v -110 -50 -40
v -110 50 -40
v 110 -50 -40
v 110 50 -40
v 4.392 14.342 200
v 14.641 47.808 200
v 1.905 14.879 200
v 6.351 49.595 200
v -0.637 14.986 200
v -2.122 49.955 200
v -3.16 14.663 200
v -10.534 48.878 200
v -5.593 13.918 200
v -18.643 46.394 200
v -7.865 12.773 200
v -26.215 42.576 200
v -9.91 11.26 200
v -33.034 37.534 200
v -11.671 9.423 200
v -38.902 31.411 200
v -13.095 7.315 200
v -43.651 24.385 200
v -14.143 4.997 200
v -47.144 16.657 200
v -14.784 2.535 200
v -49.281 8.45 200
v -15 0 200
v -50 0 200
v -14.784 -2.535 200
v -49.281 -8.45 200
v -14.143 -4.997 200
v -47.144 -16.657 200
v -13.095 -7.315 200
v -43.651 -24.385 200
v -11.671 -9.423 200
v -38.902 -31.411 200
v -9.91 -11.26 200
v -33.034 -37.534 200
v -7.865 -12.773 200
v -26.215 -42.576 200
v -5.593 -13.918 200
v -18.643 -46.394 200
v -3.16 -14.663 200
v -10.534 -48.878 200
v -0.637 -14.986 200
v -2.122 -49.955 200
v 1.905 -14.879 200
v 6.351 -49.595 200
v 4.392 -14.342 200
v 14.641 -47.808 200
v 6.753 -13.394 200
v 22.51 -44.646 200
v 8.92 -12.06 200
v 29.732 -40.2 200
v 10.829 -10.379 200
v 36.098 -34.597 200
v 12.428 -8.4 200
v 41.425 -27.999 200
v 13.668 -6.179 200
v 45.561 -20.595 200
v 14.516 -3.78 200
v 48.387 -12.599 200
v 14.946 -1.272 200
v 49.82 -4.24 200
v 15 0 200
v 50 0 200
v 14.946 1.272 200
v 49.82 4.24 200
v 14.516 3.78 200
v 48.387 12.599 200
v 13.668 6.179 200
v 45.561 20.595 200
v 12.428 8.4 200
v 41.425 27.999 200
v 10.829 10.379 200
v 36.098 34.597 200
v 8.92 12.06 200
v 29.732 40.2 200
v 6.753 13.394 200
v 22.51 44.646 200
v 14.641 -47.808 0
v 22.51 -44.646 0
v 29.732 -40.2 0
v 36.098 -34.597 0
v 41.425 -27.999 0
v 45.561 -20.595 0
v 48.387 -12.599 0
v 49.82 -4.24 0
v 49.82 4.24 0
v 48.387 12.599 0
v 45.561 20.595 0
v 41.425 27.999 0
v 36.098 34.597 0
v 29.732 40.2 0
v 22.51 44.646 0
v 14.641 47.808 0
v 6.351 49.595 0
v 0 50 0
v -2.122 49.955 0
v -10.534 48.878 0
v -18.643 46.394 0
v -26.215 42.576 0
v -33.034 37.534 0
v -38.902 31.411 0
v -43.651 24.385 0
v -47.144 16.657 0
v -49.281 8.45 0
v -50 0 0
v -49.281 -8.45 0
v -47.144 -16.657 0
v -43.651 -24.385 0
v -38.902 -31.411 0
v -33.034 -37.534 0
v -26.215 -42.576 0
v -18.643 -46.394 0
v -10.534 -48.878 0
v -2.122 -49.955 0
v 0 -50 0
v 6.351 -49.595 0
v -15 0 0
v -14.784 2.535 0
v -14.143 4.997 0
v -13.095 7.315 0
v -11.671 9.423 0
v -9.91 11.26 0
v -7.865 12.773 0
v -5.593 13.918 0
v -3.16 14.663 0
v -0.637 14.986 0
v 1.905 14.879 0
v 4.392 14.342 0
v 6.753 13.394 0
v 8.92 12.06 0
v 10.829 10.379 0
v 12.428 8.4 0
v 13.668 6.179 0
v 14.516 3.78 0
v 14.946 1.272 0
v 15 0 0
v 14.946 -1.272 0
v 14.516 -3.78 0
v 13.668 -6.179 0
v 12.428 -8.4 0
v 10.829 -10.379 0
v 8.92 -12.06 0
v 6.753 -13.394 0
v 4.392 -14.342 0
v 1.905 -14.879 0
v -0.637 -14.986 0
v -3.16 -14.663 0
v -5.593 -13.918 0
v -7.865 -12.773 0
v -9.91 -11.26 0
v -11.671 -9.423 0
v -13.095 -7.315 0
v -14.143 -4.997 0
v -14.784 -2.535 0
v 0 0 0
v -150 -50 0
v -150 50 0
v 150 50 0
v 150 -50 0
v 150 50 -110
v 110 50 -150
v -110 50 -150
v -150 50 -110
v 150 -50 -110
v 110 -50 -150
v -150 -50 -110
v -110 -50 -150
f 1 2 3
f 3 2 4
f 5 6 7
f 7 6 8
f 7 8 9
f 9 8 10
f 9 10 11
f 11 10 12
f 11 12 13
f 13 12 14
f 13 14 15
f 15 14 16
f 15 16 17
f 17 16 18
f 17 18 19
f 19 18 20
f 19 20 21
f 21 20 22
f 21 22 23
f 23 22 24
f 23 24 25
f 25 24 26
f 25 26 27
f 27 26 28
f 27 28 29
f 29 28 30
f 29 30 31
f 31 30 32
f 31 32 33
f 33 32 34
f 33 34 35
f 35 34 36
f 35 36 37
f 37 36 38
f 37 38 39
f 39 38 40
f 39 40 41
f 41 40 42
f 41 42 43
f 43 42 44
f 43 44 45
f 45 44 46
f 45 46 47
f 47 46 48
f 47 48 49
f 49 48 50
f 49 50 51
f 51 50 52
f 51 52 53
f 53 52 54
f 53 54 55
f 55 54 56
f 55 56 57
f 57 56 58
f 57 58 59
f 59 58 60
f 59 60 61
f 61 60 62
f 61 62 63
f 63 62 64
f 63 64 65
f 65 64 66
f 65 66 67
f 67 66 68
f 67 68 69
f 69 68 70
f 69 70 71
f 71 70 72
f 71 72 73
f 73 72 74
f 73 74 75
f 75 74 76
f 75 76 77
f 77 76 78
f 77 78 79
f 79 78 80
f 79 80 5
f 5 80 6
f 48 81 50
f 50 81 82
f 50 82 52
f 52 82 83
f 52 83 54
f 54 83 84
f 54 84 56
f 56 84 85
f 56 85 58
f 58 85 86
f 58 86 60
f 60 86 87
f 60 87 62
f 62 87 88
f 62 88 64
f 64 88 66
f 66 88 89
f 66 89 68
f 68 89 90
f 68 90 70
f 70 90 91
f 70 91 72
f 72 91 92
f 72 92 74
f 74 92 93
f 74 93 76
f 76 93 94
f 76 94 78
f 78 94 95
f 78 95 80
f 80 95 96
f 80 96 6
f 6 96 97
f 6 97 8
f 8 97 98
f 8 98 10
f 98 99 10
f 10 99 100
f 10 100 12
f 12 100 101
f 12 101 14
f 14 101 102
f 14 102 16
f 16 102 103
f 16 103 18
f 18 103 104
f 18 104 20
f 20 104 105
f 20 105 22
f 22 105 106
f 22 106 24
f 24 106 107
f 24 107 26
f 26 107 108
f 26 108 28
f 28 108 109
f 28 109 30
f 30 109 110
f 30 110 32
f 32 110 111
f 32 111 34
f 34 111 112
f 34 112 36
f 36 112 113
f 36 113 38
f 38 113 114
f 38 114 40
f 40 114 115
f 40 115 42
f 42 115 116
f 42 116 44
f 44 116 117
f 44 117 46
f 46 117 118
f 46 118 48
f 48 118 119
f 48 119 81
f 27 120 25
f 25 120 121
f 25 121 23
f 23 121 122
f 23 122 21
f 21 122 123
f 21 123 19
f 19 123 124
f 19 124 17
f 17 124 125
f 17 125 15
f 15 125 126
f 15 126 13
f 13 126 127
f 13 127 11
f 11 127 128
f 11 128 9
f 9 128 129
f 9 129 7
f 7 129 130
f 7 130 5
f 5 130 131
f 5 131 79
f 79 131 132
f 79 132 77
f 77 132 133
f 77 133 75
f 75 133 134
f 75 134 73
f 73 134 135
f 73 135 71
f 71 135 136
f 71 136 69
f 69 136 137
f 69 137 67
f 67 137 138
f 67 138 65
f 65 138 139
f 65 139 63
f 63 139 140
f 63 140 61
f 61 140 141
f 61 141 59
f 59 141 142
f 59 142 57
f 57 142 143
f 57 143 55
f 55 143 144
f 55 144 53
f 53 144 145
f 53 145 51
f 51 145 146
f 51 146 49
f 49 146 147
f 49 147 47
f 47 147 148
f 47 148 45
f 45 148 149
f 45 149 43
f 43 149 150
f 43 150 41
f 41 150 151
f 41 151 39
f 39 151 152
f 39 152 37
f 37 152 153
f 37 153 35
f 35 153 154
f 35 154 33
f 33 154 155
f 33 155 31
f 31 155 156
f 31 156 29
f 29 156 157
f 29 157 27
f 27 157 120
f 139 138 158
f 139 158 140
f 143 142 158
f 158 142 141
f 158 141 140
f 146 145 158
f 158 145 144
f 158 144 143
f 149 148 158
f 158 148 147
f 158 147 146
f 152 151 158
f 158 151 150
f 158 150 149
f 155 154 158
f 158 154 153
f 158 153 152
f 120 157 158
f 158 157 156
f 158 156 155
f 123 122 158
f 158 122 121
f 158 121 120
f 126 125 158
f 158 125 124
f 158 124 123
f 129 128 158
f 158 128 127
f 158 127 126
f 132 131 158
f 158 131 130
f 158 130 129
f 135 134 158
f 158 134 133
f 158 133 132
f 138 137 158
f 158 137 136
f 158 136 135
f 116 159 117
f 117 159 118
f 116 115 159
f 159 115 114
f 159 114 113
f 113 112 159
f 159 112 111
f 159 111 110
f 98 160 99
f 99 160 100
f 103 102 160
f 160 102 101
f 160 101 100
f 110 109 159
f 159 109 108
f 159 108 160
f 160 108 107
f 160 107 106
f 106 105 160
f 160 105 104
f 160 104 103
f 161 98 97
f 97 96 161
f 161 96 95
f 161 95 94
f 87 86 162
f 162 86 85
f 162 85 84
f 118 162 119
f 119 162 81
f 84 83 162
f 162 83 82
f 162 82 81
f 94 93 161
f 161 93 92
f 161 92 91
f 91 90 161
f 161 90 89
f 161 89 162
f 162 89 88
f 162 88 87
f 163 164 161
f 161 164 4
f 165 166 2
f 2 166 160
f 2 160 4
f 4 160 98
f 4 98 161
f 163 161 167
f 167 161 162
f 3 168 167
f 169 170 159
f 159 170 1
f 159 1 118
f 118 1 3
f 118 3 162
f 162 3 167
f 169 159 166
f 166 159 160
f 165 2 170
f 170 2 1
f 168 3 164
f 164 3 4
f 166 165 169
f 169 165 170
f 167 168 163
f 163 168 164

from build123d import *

# Parameters (mm, degrees)
SKETCH2_R           = 50
SKETCH2_R_2         = 15
BOSS_EXTRUDE1_DEPTH = 200
BOSS_EXTRUDE2_DEPTH = 40
SKETCH4_W           = 40
SKETCH4_H           = 100
BOSS_EXTRUDE3_DEPTH = 120
CHAMFER1_SIZE       = 50
CHAMFER2_SIZE       = 50


with BuildPart() as part:
    # Sketch2 → Boss-Extrude1 (new body)
    with BuildSketch(Plane.XY):
        Circle(SKETCH2_R)
        Circle(SKETCH2_R_2, mode=Mode.SUBTRACT)
    extrude(amount=BOSS_EXTRUDE1_DEPTH)

    # Sketch3 → Boss-Extrude2 (add)
    with BuildSketch(Plane(origin=(0, 0, 0), x_dir=(-1, 0, 0), z_dir=(0, 0, -1))):
        Polygon((-150, 50), (-150, 33.43588559), (-150, -50), (150, -50), (150, 50), align=None)
    extrude(amount=BOSS_EXTRUDE2_DEPTH)

    # Sketch4 → Boss-Extrude3 (add)
    with BuildSketch(Plane(origin=(0, 0, -40), x_dir=(-1, 0, 0), z_dir=(0, 0, -1))):
        Polygon((110, 50), (110, 33.823115264), (110, -50), (150, -50), (150, 50), align=None)
        with Locations((-130, 0)):
            Rectangle(SKETCH4_W, SKETCH4_H)
    extrude(amount=BOSS_EXTRUDE3_DEPTH)

    # Chamfer1
    # the kernel refuses this chamfer: 50 mm, written as the material it takes off along each edge
    with BuildSketch(Plane(origin=(-150, -178.584149398, -160), x_dir=(0.9996219169112966, 0, -0.027495876610586594), z_dir=(0, 1, 0))) as chamfer1_piece_1:
        Polygon((CHAMFER1_SIZE * 0.999621916911, -CHAMFER1_SIZE * 0.0274958766106), (-CHAMFER1_SIZE * 0.0274958766106, -CHAMFER1_SIZE * 0.999621916911), (0, 0), align=None)
    extrude(amount=357.168298797, mode=Mode.SUBTRACT)

    # Chamfer2
    # the kernel refuses this chamfer: 50 mm, written as the material it takes off along each edge
    with BuildSketch(Plane(origin=(150, -178.584149398, -160), x_dir=(0.027495876610586594, 0, 0.9996219169112966), z_dir=(0, 1, 0))) as chamfer2_piece_1:
        Polygon((CHAMFER2_SIZE * 0.999621916911, -CHAMFER2_SIZE * 0.0274958766106), (-CHAMFER2_SIZE * 0.0274958766106, -CHAMFER2_SIZE * 0.999621916911), (0, 0), align=None)
    extrude(amount=357.168298797, mode=Mode.SUBTRACT)


solid = part.part
